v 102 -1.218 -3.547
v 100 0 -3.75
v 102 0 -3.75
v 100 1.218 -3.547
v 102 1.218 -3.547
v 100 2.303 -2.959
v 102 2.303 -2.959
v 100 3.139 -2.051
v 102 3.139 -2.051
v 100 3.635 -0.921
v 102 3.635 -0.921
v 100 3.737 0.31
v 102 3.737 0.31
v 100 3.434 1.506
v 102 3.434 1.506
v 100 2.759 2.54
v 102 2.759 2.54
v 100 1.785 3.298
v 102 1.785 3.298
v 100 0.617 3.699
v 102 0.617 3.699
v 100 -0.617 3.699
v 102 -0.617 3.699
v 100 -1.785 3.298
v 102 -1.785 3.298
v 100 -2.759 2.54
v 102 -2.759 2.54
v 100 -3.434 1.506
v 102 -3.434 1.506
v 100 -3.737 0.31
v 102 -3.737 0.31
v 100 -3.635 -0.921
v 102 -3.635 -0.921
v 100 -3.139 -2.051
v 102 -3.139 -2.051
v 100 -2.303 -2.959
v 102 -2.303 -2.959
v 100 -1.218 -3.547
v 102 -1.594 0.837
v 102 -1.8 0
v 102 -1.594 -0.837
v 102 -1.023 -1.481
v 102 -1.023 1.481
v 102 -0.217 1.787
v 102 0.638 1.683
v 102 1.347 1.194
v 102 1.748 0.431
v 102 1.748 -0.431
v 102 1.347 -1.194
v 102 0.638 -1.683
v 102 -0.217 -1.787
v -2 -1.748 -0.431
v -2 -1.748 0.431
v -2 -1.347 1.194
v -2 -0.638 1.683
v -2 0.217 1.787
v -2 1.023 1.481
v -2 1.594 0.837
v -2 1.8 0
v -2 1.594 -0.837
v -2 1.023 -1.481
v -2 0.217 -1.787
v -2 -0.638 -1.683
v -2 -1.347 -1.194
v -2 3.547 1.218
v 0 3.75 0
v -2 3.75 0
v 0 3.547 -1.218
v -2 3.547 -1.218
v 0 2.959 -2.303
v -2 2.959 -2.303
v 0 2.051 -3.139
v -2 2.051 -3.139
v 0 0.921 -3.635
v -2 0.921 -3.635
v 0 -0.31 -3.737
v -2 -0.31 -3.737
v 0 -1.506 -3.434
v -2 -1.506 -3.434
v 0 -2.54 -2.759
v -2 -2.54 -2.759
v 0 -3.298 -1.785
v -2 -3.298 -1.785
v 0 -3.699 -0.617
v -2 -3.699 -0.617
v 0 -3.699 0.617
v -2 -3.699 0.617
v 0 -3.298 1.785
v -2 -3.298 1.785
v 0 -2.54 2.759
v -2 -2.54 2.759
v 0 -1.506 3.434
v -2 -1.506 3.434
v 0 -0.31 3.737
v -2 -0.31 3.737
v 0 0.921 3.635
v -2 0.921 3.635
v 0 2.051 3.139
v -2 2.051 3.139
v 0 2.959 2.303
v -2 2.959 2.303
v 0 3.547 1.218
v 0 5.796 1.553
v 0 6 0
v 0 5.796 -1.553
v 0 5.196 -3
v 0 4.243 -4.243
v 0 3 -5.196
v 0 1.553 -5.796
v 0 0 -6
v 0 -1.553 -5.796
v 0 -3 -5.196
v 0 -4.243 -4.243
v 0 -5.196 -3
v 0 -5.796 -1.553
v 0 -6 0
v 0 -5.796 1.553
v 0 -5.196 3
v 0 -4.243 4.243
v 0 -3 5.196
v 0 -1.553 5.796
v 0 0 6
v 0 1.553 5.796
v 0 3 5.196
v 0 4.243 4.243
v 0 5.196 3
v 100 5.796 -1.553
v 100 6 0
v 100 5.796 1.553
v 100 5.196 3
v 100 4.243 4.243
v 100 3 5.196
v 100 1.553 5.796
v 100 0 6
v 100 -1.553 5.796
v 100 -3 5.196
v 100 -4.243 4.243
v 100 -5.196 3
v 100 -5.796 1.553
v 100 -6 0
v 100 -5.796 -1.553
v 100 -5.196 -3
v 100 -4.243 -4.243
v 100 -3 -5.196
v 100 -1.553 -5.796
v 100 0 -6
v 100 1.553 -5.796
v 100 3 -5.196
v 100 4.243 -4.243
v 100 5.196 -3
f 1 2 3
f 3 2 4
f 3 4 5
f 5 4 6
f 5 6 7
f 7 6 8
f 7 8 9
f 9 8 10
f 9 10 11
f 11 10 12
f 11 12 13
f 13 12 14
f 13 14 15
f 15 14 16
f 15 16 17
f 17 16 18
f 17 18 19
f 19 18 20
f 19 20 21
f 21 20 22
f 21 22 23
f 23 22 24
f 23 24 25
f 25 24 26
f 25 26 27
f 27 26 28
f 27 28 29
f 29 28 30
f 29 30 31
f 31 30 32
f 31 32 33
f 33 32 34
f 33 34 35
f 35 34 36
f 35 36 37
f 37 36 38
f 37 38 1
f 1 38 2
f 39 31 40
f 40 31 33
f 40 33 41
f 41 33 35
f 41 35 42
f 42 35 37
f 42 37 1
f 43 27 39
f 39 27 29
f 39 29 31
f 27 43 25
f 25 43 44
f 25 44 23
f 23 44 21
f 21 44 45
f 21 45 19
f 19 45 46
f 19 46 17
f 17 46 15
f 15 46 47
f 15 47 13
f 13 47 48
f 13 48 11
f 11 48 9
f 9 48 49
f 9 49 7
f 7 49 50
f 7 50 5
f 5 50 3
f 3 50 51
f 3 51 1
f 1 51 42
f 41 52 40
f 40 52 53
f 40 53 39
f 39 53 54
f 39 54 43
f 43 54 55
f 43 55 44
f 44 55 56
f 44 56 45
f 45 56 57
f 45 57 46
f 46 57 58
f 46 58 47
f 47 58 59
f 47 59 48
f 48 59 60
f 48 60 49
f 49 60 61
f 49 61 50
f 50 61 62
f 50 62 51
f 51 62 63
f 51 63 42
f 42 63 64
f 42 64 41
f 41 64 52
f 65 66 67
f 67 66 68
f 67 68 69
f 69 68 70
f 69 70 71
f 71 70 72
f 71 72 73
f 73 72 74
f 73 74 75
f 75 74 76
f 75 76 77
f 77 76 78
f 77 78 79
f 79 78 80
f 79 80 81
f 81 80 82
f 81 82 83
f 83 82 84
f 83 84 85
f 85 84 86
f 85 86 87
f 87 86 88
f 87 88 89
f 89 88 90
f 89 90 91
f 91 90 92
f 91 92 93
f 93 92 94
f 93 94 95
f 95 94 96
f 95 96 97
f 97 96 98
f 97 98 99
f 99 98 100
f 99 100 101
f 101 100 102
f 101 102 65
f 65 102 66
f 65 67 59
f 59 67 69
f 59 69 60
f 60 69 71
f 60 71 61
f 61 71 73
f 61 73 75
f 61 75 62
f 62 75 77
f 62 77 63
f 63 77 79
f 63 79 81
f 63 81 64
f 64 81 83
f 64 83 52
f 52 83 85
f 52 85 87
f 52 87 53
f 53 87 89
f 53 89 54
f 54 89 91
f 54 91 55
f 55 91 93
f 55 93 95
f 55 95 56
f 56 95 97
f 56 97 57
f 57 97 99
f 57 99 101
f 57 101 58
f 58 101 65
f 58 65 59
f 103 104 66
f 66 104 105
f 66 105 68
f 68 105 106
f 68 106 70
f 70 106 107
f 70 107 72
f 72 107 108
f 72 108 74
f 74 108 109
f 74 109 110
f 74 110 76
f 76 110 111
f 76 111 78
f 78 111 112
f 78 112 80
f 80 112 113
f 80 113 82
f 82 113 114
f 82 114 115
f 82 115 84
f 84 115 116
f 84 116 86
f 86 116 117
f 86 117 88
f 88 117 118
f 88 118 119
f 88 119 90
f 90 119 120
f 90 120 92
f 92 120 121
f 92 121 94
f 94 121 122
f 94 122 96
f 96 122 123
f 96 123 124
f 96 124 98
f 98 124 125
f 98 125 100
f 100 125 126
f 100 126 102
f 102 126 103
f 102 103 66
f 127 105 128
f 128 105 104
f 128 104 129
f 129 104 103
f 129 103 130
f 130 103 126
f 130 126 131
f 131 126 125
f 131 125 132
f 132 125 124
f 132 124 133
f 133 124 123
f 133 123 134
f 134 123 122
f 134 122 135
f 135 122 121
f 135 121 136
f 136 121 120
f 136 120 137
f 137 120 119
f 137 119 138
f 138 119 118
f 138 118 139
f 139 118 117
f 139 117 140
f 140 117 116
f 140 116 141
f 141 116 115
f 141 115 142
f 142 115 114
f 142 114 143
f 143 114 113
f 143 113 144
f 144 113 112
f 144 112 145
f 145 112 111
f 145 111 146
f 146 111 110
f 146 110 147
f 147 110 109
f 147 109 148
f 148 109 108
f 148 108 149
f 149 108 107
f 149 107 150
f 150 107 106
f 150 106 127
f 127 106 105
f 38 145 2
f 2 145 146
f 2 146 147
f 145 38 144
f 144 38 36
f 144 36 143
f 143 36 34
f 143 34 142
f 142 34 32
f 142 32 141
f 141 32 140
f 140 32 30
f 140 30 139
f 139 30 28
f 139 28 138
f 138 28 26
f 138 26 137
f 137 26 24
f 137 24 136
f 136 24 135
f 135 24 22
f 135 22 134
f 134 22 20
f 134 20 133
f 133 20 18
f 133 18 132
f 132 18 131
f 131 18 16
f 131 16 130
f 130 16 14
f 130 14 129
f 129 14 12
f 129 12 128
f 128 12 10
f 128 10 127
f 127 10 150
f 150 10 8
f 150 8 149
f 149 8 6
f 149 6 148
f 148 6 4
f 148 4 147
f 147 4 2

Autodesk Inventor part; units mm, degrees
ref_plane "YZ Plane" through (0, 0, 0) normal (1, 0, 0) x (0, 1, 0)
ref_plane "XZ Plane" through (0, 0, 0) normal (0, 1, 0) x (-1, 0, 0)
ref_plane "XY Plane" through (0, 0, 0) normal (0, 0, 1) x (1, 0, 0)
sketch "Sketch1" plane through (0, 0, 0) normal (1, 0, 0) x (0, 1, 0)
  circle A0 centre (0, 0) radius 3.75
  circle A1 centre (0, 0) radius 6
  circle A2 centre (0, 0) radius 1.8
  dimension "d0" = 7.5
  dimension "d1" = 12
  dimension "d2" = 3.6
extrude "Extrusion1" add sketch "Sketch1" along normal blind 100 contours A0 | A1 | A2
extrude "Extrusion3" add sketch "Sketch1" against normal blind 2 contours A0
sketch "Sketch2" plane through (100, 0, 0) normal (1, 0, 0) x (0, 0, -1)
  circle A0 centre (0, 0) radius 3.75
  dimension "d9" = 7.5
extrude "Extrusion4" add sketch "Sketch2" along normal blind 2
extrude "Extrusion2" cut sketch "Sketch1" along normal blind 600 contours A2
properties part number "extendo100"
